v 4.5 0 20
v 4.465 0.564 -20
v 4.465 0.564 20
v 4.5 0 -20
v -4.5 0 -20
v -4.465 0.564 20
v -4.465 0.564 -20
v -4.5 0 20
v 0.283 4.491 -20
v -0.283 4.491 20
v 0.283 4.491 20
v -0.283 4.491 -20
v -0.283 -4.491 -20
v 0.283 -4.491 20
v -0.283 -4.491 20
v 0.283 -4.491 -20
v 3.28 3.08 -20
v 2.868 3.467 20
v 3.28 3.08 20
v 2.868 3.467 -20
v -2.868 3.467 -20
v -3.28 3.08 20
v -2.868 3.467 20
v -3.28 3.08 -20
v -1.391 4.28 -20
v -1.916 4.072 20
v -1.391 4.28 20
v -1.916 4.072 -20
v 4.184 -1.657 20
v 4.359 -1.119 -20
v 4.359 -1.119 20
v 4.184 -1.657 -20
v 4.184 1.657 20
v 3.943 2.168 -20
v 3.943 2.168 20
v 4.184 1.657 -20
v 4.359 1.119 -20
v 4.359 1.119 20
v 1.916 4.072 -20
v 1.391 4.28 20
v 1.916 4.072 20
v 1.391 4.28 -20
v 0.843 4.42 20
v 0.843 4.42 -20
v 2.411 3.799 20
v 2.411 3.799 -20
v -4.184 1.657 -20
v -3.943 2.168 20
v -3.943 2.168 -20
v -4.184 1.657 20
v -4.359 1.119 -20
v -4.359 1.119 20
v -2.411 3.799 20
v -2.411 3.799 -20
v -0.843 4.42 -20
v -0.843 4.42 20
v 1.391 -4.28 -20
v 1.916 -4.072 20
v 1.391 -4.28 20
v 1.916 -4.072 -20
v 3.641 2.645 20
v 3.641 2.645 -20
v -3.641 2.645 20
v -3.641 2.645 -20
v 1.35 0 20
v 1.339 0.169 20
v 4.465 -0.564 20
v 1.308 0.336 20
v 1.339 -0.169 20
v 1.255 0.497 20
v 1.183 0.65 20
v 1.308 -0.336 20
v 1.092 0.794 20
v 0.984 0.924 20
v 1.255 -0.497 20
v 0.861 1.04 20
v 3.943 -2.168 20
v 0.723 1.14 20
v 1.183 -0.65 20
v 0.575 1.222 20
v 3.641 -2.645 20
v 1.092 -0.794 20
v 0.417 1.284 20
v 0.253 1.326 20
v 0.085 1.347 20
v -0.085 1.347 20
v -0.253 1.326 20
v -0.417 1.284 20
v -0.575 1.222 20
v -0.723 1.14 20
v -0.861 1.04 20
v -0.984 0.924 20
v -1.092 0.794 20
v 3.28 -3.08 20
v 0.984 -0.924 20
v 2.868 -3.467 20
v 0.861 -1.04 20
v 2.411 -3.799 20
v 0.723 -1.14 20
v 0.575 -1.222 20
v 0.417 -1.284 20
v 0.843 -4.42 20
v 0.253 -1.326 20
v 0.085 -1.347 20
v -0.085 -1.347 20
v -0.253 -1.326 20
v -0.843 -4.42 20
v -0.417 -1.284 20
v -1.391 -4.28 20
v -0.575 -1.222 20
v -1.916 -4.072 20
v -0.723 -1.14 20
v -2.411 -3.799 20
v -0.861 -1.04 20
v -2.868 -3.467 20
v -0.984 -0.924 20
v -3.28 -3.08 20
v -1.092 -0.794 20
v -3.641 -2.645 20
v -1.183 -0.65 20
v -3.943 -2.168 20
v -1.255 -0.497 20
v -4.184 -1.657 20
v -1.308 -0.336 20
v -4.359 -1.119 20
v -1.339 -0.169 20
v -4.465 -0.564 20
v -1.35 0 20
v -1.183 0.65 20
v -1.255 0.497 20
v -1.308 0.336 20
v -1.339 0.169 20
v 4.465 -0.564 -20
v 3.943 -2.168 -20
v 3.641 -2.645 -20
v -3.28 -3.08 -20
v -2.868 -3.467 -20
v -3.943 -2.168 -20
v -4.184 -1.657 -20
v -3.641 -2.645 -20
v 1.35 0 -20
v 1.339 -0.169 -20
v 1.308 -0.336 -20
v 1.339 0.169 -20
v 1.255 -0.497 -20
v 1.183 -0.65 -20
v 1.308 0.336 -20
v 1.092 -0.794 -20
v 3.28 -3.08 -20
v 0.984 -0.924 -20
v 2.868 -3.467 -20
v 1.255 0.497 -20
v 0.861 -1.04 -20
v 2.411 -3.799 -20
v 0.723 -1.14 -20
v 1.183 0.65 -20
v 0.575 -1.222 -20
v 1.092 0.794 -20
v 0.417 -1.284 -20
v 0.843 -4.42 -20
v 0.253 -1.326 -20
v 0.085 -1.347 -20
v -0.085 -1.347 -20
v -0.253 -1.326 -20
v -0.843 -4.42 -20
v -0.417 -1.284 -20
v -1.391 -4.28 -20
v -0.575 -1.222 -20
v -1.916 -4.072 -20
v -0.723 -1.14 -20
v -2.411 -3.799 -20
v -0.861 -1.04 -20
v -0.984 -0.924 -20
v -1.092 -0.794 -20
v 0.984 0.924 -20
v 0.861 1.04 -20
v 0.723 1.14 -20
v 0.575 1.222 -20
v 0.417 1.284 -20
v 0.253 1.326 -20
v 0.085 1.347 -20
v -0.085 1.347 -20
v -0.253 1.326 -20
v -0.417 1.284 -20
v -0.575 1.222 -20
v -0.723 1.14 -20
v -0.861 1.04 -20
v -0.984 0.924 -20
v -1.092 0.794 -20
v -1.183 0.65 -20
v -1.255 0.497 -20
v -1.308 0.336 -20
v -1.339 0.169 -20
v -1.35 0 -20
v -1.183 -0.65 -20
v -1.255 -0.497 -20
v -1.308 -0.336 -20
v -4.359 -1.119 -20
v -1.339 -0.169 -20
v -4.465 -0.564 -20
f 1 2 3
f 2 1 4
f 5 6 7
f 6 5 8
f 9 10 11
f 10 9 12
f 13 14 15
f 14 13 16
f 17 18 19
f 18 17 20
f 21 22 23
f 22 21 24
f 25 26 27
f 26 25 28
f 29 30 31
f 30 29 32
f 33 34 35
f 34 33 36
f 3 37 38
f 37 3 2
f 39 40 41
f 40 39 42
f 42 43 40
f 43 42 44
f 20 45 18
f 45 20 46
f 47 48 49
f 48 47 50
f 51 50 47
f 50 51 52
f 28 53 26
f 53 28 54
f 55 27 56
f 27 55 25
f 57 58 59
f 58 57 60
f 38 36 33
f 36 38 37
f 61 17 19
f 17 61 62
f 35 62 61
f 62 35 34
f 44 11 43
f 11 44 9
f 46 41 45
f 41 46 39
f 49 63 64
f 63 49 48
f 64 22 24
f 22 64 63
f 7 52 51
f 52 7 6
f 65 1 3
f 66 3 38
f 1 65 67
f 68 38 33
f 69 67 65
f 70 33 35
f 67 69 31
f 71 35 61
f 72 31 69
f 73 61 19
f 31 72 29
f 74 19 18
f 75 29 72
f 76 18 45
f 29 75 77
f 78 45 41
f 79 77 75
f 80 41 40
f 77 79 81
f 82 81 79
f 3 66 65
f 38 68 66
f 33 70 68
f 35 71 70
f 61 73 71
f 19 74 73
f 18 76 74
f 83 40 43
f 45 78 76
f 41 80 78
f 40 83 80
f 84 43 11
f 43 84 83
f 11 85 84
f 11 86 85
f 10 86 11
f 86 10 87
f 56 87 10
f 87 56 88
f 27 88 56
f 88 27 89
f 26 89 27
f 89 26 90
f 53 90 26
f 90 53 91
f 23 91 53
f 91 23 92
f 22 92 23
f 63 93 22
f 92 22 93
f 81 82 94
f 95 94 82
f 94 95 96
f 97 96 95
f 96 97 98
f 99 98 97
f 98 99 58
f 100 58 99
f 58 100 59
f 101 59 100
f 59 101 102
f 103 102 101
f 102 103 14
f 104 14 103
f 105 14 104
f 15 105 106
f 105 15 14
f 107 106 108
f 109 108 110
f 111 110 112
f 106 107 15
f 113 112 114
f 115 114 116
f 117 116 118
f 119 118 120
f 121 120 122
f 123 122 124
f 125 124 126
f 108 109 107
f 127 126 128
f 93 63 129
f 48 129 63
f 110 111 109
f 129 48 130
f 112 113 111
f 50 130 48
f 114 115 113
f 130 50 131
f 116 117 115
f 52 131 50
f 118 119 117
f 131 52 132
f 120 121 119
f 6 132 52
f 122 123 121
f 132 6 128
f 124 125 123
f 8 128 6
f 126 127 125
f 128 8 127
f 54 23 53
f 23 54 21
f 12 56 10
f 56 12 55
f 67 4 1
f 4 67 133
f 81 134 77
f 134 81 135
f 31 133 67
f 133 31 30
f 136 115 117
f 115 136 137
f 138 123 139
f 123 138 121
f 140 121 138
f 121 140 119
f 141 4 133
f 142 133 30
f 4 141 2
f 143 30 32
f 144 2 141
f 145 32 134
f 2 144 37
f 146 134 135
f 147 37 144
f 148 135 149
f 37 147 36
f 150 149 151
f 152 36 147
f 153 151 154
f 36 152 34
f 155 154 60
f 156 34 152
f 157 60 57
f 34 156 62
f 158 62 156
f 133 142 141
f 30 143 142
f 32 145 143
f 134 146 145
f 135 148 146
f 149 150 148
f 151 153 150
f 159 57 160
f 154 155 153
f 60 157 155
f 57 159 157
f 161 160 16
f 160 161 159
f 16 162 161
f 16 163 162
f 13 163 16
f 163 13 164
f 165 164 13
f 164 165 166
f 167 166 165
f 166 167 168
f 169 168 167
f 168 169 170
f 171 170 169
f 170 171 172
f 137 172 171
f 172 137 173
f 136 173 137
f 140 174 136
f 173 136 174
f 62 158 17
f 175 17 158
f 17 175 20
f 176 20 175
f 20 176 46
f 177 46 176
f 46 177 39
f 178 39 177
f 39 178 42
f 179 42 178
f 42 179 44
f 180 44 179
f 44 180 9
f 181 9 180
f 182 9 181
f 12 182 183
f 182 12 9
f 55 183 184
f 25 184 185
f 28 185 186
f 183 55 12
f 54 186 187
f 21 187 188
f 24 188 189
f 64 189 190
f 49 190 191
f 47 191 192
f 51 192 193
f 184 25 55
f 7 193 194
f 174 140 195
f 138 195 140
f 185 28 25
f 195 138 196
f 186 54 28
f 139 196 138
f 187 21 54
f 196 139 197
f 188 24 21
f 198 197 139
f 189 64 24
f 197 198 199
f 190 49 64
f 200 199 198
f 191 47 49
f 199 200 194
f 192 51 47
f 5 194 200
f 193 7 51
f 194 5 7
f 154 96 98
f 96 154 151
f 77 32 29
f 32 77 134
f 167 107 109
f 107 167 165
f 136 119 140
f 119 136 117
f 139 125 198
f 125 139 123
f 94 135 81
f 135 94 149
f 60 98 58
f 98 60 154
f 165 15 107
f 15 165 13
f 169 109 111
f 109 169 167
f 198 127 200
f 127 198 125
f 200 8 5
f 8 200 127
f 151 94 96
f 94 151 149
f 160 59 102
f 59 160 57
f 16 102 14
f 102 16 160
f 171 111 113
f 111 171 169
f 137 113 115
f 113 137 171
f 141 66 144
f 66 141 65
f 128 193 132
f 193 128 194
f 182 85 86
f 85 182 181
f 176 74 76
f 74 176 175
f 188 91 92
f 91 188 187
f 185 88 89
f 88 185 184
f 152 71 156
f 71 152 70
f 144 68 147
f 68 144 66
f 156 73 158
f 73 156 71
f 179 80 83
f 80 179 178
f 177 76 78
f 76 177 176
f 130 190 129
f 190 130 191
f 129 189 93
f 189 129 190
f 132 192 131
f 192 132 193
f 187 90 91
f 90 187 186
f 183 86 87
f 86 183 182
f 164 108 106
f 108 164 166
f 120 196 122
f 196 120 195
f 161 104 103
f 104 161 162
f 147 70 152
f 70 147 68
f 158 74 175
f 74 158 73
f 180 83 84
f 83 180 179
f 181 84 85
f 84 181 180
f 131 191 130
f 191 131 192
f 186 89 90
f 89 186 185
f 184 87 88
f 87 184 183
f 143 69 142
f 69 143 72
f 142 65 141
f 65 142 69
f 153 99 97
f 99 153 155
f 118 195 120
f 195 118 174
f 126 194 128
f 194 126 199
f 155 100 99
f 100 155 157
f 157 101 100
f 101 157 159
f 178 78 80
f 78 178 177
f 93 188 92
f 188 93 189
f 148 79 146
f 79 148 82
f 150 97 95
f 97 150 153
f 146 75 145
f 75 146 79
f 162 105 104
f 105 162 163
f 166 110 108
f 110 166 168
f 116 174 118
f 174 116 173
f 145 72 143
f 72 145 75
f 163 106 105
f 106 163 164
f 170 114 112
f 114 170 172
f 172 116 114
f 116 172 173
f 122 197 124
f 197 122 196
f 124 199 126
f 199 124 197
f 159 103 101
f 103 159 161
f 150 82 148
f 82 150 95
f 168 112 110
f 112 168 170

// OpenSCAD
$fn = 50;


difference() {
	union() {
		translate(v = [0, 0, -20.0000000000]) {
			cylinder(h = 40, r = 4.5000000000);
		}
	}
	union() {
		translate(v = [0, 0, -100.0000000000]) {
			cylinder(h = 200, r = 1.3500000000);
		}
	}
}
